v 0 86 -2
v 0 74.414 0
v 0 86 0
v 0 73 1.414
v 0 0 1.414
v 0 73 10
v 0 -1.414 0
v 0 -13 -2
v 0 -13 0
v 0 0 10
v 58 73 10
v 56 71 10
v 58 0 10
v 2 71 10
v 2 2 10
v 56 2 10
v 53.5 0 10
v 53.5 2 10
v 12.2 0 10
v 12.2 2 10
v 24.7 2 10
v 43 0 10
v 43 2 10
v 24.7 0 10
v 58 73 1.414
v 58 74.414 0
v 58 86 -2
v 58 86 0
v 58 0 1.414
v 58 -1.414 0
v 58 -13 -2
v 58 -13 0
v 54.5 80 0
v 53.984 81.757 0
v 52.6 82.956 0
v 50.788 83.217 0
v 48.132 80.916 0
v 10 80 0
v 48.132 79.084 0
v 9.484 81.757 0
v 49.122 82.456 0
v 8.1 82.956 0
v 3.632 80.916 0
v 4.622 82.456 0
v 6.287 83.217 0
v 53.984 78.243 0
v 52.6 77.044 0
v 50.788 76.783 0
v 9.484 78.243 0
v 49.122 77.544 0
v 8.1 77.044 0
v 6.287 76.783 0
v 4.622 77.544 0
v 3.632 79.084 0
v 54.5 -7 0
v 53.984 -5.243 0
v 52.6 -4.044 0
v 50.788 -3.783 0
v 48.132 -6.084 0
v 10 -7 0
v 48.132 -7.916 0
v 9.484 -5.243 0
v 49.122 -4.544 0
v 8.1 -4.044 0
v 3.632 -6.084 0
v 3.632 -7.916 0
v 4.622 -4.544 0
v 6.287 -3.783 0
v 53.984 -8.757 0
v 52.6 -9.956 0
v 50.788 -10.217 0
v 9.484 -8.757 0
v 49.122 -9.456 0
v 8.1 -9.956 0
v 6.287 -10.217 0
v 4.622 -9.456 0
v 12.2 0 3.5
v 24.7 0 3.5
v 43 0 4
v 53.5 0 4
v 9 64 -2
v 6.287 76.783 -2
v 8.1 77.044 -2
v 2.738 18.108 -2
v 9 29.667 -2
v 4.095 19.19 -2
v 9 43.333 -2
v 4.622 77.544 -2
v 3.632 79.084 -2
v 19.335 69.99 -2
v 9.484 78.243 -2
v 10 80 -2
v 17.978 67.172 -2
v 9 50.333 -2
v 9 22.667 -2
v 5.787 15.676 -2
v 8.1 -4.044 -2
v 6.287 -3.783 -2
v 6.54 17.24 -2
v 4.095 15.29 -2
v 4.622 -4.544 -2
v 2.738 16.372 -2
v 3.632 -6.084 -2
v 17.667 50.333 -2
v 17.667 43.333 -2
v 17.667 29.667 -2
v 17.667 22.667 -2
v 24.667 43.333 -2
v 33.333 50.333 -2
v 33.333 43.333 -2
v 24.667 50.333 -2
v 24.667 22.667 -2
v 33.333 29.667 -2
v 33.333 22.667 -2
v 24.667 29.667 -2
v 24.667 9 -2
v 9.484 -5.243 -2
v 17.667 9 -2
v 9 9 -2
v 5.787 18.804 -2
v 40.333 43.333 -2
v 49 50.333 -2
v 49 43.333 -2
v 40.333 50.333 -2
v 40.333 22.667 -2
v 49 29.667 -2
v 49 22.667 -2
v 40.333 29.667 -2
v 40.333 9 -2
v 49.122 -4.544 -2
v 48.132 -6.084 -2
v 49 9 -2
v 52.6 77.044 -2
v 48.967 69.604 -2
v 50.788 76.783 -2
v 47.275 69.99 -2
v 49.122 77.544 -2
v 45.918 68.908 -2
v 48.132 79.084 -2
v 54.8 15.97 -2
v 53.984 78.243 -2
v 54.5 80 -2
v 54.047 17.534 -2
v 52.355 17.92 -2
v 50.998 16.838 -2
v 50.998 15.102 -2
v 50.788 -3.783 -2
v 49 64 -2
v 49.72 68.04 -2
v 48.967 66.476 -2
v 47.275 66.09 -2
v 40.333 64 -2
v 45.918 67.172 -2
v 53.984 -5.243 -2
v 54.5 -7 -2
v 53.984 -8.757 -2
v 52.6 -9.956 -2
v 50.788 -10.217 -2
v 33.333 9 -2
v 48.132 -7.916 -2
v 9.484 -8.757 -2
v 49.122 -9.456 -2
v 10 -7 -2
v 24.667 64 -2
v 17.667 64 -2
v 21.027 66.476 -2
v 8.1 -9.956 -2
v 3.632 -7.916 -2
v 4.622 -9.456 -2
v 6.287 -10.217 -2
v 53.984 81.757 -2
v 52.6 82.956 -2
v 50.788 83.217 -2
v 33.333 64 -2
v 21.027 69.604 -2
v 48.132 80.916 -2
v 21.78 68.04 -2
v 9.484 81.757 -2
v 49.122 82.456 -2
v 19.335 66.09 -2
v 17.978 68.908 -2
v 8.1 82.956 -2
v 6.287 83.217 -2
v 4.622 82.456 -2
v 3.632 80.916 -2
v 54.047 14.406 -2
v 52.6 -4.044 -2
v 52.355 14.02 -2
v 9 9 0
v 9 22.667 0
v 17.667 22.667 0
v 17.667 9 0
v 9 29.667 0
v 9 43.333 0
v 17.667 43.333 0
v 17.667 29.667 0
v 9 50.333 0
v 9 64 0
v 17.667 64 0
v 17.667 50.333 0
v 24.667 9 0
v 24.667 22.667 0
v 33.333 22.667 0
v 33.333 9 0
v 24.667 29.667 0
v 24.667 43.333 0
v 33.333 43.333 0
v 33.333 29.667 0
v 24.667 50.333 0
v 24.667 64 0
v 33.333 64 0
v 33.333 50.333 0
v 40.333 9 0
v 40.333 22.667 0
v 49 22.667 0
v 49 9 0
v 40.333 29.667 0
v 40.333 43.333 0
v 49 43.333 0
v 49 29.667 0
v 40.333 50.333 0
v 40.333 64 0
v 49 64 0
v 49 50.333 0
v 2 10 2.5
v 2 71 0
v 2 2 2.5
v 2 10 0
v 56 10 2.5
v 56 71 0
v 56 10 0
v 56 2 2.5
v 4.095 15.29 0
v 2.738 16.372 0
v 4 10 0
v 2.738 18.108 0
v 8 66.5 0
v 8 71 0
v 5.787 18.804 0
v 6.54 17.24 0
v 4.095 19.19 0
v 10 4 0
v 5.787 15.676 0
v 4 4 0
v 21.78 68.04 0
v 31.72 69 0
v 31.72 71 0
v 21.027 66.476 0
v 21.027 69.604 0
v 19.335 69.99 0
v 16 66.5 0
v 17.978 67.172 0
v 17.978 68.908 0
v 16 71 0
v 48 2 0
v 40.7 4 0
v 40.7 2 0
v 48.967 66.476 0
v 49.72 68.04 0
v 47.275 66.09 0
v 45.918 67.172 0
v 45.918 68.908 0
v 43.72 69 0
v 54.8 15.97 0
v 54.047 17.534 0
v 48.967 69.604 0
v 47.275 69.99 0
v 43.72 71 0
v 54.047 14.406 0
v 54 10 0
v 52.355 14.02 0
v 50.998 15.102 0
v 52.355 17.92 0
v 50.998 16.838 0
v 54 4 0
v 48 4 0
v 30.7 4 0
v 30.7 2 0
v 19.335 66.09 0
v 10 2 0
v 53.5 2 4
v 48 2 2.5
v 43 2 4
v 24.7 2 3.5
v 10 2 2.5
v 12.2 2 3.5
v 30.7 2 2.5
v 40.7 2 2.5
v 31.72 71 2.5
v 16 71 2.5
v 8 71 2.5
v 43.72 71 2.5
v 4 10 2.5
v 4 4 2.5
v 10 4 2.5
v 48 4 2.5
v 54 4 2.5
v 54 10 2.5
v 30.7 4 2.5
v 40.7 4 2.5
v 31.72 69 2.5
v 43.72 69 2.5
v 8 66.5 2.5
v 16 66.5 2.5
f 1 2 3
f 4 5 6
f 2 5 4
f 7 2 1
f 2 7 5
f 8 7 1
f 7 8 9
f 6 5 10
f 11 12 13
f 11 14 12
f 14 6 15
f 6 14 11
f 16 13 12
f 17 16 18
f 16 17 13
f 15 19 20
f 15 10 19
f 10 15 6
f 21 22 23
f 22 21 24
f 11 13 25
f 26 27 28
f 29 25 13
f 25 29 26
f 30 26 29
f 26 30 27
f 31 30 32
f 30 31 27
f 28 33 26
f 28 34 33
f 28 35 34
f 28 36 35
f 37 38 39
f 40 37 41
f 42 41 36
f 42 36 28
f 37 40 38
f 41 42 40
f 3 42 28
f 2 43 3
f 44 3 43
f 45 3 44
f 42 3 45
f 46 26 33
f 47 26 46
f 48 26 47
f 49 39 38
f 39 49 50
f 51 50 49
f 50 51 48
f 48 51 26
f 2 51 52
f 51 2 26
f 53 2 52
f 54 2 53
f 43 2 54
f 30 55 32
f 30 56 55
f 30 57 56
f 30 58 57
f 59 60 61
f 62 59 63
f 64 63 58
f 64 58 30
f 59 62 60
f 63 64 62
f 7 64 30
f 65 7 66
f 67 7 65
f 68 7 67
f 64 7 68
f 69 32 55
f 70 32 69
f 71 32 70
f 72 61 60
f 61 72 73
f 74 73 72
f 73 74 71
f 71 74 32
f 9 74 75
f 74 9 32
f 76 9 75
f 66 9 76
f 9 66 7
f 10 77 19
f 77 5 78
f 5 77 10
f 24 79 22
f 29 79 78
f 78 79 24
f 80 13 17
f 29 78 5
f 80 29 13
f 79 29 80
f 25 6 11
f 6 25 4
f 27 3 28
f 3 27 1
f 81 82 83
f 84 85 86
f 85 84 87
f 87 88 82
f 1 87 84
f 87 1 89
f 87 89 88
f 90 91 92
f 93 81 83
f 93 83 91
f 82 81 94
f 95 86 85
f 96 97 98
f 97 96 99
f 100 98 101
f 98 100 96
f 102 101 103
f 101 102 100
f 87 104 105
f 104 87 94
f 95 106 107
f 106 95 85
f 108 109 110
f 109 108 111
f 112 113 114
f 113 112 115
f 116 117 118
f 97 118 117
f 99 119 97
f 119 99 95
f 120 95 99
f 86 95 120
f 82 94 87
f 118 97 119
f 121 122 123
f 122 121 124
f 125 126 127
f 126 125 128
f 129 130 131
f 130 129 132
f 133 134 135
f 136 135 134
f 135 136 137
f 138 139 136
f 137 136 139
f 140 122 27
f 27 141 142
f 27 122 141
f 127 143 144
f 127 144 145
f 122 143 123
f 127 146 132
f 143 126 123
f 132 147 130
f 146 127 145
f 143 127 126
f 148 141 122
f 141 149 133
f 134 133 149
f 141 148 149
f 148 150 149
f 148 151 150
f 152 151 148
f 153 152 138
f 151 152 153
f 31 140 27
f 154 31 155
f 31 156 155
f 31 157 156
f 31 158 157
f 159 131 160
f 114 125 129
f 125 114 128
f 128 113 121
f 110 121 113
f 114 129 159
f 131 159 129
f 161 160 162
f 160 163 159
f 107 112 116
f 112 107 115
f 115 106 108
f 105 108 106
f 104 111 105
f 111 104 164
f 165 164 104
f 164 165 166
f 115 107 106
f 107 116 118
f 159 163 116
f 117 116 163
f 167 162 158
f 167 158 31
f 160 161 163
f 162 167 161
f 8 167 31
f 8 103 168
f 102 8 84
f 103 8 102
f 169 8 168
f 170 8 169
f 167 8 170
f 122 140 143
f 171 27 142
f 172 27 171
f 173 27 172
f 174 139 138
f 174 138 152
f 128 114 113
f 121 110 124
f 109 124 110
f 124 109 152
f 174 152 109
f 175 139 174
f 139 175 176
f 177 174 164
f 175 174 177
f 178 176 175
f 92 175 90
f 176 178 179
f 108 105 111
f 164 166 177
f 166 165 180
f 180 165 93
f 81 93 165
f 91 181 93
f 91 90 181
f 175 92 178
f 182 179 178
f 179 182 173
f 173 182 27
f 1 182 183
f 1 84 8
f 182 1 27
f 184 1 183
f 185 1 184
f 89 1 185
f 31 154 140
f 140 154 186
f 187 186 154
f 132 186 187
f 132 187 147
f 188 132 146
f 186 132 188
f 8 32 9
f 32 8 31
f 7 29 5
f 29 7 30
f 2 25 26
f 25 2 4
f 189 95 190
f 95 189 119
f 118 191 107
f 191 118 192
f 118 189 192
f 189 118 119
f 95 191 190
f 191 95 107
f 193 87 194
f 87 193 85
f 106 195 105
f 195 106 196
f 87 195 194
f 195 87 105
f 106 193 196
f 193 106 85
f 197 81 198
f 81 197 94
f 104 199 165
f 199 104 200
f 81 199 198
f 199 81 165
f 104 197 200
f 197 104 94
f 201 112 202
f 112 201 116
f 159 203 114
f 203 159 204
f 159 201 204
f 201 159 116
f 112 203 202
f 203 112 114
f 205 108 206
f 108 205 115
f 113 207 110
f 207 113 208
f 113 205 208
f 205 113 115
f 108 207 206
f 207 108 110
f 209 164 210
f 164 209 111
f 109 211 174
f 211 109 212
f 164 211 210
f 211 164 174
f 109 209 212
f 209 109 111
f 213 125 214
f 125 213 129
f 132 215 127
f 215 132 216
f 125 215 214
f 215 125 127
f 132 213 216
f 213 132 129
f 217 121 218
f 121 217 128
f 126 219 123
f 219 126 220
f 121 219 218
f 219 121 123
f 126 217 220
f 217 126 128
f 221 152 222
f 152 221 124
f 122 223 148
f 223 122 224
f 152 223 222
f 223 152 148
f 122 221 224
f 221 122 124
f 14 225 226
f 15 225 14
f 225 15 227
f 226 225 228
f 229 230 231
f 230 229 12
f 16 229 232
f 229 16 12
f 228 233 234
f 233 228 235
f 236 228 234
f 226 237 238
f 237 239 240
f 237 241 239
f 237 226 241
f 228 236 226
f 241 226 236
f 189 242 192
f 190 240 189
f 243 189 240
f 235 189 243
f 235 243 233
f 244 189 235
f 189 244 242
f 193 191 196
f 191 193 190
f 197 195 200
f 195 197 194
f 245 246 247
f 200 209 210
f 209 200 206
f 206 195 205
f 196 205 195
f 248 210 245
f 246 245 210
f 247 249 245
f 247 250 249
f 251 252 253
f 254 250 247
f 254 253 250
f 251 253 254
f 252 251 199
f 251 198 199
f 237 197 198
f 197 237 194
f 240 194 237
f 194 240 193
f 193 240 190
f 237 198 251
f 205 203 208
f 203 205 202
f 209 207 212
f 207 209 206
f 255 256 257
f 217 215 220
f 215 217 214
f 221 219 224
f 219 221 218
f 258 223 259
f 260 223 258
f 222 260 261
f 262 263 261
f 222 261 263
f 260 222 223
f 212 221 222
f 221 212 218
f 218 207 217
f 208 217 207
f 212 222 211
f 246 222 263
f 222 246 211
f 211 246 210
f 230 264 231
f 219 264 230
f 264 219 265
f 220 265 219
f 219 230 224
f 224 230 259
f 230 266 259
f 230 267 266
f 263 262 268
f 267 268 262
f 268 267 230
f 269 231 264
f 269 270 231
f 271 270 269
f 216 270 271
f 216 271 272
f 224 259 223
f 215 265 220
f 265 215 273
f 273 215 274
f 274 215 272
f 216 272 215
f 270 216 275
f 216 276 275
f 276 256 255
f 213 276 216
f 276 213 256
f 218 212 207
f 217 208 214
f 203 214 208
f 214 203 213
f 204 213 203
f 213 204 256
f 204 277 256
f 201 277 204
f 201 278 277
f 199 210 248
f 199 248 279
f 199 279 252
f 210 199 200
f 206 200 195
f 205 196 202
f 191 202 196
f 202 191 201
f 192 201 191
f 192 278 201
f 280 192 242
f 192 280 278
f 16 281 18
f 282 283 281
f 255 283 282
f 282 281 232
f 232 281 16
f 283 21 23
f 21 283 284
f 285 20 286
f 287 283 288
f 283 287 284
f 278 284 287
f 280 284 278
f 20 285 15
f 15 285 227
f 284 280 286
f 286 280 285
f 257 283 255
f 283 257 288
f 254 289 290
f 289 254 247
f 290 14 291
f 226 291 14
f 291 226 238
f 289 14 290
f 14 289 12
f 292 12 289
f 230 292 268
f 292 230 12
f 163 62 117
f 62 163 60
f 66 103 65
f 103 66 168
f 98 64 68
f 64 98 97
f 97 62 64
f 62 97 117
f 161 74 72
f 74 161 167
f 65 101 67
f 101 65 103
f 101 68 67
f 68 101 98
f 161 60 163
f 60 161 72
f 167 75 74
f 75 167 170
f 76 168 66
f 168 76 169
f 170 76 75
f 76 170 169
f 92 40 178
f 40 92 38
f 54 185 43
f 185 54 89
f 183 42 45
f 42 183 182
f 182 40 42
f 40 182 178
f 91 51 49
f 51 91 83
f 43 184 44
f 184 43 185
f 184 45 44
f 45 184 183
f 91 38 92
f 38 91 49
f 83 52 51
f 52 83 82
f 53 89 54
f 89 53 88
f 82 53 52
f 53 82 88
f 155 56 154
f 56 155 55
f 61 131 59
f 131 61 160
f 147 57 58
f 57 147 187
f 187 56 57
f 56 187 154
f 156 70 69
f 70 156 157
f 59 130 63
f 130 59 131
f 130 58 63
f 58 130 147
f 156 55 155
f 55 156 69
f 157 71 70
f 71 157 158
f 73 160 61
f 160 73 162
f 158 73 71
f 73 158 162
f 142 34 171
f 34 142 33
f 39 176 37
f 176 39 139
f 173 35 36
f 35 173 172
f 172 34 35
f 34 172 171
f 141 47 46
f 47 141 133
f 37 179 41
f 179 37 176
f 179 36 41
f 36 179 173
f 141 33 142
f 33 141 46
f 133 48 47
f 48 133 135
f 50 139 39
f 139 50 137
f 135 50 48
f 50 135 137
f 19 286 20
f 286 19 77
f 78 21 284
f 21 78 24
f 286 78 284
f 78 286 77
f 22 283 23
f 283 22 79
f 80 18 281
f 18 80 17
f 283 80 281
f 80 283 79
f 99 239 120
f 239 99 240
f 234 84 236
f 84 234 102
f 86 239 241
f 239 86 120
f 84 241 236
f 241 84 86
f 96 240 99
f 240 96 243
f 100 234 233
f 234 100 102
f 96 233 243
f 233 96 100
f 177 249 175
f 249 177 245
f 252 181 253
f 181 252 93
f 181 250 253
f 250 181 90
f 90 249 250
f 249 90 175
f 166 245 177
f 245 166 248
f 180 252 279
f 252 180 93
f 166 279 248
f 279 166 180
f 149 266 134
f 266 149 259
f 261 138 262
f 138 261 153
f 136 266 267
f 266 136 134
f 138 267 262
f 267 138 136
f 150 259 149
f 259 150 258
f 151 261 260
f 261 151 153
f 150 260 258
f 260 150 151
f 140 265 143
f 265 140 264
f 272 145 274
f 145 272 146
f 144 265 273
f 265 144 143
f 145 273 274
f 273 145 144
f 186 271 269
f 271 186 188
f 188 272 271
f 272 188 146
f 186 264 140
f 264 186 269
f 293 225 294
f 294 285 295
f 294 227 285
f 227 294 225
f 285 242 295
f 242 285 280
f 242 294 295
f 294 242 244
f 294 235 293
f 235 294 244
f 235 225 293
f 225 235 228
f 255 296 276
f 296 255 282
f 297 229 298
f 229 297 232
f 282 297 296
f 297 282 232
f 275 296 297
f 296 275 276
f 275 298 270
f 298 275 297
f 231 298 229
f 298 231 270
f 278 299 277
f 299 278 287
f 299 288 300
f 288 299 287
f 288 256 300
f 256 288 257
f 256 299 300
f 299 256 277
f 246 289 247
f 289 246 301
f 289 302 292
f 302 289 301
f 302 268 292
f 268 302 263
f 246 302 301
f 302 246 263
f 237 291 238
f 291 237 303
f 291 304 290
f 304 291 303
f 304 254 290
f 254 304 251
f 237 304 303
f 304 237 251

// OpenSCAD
// 3D printable screw down tray for holding an Arduino Uno and shield 
// (or same size microcrontroller)
// Nathan Vierling-Claassen
// 5/2015
// Revised 1/2016 
// --------------
// --Pilot holes in tray line up with pilot holes on arduino 
//   so assembly can be bolted together 
// --Ridge around edges is shorter than needed for an Arduino shield 
//   to overhang edges of tray
// --Fit of the arduino into the tray is quite tight, so resolution on the print needs to be
//   pretty good (I used 0.16mm layer height on a Lulzbot Taz4/5 with ABS)
// --Prints upwards in z direction without support material
// --Dimensions in mm
// --------------

//-------
// Measurement Parameters
//-------

// width of tray interior (x direction)
bx=54;
// length of tray interior (y direction)
by=69;
// interior height of tray edge (z direction)
bh=10;
// width of screw tabs that extend in y direction
wb=15;
// wall thickness throughout object
th=2;
// total length of bottom of the tray (includes tabs extending in y direction
tl=by+2*wb;
// distance between bolt/screw holes in tab (here set up for rack spacing)
hdist=44.5;
// width of usb opening
usb_w=12.5;
// distance of usb opening from edge of tray 
usb_d=10.2;
// width of power cord opening
pwr_w=10.5;
// distance of power cord opening from edge of tray
pwr_d=2.5;
// brace height for interior supports 
// (so that solder on base of Arduino does not impair fit)
br_d=2.5;
// diameter of bolt/screw holes
hdiam=6.5;
// width of lattice bracing on bottom of tray
br=7;

// calculate length of sides of cutouts in bottom of box 
// (here for 3 X 3 grid)
dsy=(by-4*br)/3;
dsx=(bx-4*br)/3;

// locations for arduino mounting holes
// ------------
// distance of hole center from corner in x and y direction
// starting at (0,0), then clockwise in the xy plane, 
// coordinate here is measurement on the Arduino in mm, 
// measurements from:
// https://blog.arduino.cc/2011/01/05/nice-drawings-of-the-arduino-uno-and-mega-2560/
hx1=2.54; //100
hy1=15.24; //600
hx2=17.78; // 700
hy2=66.04; //2600
hx3=45.72; //1800
hy3=66.04; //2600
hx4=50.8; //2000
hy4=13.97; //550

// diameter of arduino mounting holes
pdiam= 4;  

// ----------
// Tray build
// ----------
difference(){
	union(){	
        // main body of tray
		cube(size=[bx+2*th,by+2*th,bh],center=false);
		
        // tray base with extra length for screw tabs
		translate([0,(by+2*th-tl)/2,-th])cube(size=[bx+2*th,tl,th], center=false);
		
        // extra brace to strengthen front/back seams, 
        // 45 degree rotation reduces breakage along seam
		translate([bx/2+th,0,0])rotate(45,[1,0,0])cube(size=[bx+2*th,th,th],center=true);
		translate([bx/2+th,by+2*th,0])rotate(45,[1,0,0])cube(size=[bx+2*th,th,th],center=true);
	}
	union(){
		// remove inside of box
		translate([th,th,0])cube(size=[bx,by,2*bh],center=false);
		
		//remove screw/bolt holes in tabs
		translate([-(hdist/2-bx/2-th), -5-th, 0])cylinder(h=3*th,r=hdiam/2, center=true);
		translate([-(hdist/2-bx/2-th), by+3*th+5, 0])cylinder(h=3*th,r=hdiam/2, center=true);
		translate([bx+2*th+(hdist/2-bx/2-th), -5-th, 0])cylinder(h=3*th,r=hdiam/2, center=true);
		translate([bx+2*th+(hdist/2-bx/2-th), by+3*th+5, 0])cylinder(h=3*th,r=hdiam/2, center=true);

		// remove opening for usb & pwr cord on arduino
		translate([th+usb_d,-th/2,br_d+1])cube(size=[usb_w,2*th,bh+th],center=false);
		translate([bx+th-pwr_w-pwr_d,-th/2,br_d+1.5])cube(size=[pwr_w,2*th,bh+th],center=false);

		// remove pilot holes for arduino 
        // (thickness added to coordinate locations to account for wall of tray)
		translate([hx1+th,hy1+th],0)cylinder(h=3*th,r=pdiam/2, center=true);
		translate([hx2+th,hy2+th],0)cylinder(h=3*th,r=pdiam/2, center=true);
		translate([hx3+th,hy3+th],0)cylinder(h=3*th,r=pdiam/2, center=true);
		translate([hx4+th,hy4+th],0)cylinder(h=3*th,r=pdiam/2, center=true);

		// remove grid from bottom to improve print speed and heat reduction
		for (i=[0:2]){
			for (j=[0:2]){
				translate([th+br+i*(br+dsx),th+br+j*(br+dsy),-th-2])cube(size=[dsx,dsy,th+4]);
			}
		}
	}
}

//------------
// Add interror braces to the corners to hold arduino level and improve fit
//------------
// support at USB corner
cube(size=[10,2*th,br_d]);
cube(size=[2*th,10,br_d]);

// support at power cord corner
translate([bx+2*th-10, 0, 0])cube(size=[10,2*th,br_d]);
translate([bx+2*th-2*th, 0, 0])cube(size=[2*th,10,br_d]);

// support between USB and power openings
translate([usb_d+usb_w+6+th, 0, 0])cube(size=[10,2*th,br_d]);

// supports at side opposite power/USB openings
translate([hx3-12-pdiam/2, by, 0])cube(size=[12,2*th,br_d]);
translate([th+6, by-2.5, 0])cube(size=[8,2.5+2*th,br_d]);		
